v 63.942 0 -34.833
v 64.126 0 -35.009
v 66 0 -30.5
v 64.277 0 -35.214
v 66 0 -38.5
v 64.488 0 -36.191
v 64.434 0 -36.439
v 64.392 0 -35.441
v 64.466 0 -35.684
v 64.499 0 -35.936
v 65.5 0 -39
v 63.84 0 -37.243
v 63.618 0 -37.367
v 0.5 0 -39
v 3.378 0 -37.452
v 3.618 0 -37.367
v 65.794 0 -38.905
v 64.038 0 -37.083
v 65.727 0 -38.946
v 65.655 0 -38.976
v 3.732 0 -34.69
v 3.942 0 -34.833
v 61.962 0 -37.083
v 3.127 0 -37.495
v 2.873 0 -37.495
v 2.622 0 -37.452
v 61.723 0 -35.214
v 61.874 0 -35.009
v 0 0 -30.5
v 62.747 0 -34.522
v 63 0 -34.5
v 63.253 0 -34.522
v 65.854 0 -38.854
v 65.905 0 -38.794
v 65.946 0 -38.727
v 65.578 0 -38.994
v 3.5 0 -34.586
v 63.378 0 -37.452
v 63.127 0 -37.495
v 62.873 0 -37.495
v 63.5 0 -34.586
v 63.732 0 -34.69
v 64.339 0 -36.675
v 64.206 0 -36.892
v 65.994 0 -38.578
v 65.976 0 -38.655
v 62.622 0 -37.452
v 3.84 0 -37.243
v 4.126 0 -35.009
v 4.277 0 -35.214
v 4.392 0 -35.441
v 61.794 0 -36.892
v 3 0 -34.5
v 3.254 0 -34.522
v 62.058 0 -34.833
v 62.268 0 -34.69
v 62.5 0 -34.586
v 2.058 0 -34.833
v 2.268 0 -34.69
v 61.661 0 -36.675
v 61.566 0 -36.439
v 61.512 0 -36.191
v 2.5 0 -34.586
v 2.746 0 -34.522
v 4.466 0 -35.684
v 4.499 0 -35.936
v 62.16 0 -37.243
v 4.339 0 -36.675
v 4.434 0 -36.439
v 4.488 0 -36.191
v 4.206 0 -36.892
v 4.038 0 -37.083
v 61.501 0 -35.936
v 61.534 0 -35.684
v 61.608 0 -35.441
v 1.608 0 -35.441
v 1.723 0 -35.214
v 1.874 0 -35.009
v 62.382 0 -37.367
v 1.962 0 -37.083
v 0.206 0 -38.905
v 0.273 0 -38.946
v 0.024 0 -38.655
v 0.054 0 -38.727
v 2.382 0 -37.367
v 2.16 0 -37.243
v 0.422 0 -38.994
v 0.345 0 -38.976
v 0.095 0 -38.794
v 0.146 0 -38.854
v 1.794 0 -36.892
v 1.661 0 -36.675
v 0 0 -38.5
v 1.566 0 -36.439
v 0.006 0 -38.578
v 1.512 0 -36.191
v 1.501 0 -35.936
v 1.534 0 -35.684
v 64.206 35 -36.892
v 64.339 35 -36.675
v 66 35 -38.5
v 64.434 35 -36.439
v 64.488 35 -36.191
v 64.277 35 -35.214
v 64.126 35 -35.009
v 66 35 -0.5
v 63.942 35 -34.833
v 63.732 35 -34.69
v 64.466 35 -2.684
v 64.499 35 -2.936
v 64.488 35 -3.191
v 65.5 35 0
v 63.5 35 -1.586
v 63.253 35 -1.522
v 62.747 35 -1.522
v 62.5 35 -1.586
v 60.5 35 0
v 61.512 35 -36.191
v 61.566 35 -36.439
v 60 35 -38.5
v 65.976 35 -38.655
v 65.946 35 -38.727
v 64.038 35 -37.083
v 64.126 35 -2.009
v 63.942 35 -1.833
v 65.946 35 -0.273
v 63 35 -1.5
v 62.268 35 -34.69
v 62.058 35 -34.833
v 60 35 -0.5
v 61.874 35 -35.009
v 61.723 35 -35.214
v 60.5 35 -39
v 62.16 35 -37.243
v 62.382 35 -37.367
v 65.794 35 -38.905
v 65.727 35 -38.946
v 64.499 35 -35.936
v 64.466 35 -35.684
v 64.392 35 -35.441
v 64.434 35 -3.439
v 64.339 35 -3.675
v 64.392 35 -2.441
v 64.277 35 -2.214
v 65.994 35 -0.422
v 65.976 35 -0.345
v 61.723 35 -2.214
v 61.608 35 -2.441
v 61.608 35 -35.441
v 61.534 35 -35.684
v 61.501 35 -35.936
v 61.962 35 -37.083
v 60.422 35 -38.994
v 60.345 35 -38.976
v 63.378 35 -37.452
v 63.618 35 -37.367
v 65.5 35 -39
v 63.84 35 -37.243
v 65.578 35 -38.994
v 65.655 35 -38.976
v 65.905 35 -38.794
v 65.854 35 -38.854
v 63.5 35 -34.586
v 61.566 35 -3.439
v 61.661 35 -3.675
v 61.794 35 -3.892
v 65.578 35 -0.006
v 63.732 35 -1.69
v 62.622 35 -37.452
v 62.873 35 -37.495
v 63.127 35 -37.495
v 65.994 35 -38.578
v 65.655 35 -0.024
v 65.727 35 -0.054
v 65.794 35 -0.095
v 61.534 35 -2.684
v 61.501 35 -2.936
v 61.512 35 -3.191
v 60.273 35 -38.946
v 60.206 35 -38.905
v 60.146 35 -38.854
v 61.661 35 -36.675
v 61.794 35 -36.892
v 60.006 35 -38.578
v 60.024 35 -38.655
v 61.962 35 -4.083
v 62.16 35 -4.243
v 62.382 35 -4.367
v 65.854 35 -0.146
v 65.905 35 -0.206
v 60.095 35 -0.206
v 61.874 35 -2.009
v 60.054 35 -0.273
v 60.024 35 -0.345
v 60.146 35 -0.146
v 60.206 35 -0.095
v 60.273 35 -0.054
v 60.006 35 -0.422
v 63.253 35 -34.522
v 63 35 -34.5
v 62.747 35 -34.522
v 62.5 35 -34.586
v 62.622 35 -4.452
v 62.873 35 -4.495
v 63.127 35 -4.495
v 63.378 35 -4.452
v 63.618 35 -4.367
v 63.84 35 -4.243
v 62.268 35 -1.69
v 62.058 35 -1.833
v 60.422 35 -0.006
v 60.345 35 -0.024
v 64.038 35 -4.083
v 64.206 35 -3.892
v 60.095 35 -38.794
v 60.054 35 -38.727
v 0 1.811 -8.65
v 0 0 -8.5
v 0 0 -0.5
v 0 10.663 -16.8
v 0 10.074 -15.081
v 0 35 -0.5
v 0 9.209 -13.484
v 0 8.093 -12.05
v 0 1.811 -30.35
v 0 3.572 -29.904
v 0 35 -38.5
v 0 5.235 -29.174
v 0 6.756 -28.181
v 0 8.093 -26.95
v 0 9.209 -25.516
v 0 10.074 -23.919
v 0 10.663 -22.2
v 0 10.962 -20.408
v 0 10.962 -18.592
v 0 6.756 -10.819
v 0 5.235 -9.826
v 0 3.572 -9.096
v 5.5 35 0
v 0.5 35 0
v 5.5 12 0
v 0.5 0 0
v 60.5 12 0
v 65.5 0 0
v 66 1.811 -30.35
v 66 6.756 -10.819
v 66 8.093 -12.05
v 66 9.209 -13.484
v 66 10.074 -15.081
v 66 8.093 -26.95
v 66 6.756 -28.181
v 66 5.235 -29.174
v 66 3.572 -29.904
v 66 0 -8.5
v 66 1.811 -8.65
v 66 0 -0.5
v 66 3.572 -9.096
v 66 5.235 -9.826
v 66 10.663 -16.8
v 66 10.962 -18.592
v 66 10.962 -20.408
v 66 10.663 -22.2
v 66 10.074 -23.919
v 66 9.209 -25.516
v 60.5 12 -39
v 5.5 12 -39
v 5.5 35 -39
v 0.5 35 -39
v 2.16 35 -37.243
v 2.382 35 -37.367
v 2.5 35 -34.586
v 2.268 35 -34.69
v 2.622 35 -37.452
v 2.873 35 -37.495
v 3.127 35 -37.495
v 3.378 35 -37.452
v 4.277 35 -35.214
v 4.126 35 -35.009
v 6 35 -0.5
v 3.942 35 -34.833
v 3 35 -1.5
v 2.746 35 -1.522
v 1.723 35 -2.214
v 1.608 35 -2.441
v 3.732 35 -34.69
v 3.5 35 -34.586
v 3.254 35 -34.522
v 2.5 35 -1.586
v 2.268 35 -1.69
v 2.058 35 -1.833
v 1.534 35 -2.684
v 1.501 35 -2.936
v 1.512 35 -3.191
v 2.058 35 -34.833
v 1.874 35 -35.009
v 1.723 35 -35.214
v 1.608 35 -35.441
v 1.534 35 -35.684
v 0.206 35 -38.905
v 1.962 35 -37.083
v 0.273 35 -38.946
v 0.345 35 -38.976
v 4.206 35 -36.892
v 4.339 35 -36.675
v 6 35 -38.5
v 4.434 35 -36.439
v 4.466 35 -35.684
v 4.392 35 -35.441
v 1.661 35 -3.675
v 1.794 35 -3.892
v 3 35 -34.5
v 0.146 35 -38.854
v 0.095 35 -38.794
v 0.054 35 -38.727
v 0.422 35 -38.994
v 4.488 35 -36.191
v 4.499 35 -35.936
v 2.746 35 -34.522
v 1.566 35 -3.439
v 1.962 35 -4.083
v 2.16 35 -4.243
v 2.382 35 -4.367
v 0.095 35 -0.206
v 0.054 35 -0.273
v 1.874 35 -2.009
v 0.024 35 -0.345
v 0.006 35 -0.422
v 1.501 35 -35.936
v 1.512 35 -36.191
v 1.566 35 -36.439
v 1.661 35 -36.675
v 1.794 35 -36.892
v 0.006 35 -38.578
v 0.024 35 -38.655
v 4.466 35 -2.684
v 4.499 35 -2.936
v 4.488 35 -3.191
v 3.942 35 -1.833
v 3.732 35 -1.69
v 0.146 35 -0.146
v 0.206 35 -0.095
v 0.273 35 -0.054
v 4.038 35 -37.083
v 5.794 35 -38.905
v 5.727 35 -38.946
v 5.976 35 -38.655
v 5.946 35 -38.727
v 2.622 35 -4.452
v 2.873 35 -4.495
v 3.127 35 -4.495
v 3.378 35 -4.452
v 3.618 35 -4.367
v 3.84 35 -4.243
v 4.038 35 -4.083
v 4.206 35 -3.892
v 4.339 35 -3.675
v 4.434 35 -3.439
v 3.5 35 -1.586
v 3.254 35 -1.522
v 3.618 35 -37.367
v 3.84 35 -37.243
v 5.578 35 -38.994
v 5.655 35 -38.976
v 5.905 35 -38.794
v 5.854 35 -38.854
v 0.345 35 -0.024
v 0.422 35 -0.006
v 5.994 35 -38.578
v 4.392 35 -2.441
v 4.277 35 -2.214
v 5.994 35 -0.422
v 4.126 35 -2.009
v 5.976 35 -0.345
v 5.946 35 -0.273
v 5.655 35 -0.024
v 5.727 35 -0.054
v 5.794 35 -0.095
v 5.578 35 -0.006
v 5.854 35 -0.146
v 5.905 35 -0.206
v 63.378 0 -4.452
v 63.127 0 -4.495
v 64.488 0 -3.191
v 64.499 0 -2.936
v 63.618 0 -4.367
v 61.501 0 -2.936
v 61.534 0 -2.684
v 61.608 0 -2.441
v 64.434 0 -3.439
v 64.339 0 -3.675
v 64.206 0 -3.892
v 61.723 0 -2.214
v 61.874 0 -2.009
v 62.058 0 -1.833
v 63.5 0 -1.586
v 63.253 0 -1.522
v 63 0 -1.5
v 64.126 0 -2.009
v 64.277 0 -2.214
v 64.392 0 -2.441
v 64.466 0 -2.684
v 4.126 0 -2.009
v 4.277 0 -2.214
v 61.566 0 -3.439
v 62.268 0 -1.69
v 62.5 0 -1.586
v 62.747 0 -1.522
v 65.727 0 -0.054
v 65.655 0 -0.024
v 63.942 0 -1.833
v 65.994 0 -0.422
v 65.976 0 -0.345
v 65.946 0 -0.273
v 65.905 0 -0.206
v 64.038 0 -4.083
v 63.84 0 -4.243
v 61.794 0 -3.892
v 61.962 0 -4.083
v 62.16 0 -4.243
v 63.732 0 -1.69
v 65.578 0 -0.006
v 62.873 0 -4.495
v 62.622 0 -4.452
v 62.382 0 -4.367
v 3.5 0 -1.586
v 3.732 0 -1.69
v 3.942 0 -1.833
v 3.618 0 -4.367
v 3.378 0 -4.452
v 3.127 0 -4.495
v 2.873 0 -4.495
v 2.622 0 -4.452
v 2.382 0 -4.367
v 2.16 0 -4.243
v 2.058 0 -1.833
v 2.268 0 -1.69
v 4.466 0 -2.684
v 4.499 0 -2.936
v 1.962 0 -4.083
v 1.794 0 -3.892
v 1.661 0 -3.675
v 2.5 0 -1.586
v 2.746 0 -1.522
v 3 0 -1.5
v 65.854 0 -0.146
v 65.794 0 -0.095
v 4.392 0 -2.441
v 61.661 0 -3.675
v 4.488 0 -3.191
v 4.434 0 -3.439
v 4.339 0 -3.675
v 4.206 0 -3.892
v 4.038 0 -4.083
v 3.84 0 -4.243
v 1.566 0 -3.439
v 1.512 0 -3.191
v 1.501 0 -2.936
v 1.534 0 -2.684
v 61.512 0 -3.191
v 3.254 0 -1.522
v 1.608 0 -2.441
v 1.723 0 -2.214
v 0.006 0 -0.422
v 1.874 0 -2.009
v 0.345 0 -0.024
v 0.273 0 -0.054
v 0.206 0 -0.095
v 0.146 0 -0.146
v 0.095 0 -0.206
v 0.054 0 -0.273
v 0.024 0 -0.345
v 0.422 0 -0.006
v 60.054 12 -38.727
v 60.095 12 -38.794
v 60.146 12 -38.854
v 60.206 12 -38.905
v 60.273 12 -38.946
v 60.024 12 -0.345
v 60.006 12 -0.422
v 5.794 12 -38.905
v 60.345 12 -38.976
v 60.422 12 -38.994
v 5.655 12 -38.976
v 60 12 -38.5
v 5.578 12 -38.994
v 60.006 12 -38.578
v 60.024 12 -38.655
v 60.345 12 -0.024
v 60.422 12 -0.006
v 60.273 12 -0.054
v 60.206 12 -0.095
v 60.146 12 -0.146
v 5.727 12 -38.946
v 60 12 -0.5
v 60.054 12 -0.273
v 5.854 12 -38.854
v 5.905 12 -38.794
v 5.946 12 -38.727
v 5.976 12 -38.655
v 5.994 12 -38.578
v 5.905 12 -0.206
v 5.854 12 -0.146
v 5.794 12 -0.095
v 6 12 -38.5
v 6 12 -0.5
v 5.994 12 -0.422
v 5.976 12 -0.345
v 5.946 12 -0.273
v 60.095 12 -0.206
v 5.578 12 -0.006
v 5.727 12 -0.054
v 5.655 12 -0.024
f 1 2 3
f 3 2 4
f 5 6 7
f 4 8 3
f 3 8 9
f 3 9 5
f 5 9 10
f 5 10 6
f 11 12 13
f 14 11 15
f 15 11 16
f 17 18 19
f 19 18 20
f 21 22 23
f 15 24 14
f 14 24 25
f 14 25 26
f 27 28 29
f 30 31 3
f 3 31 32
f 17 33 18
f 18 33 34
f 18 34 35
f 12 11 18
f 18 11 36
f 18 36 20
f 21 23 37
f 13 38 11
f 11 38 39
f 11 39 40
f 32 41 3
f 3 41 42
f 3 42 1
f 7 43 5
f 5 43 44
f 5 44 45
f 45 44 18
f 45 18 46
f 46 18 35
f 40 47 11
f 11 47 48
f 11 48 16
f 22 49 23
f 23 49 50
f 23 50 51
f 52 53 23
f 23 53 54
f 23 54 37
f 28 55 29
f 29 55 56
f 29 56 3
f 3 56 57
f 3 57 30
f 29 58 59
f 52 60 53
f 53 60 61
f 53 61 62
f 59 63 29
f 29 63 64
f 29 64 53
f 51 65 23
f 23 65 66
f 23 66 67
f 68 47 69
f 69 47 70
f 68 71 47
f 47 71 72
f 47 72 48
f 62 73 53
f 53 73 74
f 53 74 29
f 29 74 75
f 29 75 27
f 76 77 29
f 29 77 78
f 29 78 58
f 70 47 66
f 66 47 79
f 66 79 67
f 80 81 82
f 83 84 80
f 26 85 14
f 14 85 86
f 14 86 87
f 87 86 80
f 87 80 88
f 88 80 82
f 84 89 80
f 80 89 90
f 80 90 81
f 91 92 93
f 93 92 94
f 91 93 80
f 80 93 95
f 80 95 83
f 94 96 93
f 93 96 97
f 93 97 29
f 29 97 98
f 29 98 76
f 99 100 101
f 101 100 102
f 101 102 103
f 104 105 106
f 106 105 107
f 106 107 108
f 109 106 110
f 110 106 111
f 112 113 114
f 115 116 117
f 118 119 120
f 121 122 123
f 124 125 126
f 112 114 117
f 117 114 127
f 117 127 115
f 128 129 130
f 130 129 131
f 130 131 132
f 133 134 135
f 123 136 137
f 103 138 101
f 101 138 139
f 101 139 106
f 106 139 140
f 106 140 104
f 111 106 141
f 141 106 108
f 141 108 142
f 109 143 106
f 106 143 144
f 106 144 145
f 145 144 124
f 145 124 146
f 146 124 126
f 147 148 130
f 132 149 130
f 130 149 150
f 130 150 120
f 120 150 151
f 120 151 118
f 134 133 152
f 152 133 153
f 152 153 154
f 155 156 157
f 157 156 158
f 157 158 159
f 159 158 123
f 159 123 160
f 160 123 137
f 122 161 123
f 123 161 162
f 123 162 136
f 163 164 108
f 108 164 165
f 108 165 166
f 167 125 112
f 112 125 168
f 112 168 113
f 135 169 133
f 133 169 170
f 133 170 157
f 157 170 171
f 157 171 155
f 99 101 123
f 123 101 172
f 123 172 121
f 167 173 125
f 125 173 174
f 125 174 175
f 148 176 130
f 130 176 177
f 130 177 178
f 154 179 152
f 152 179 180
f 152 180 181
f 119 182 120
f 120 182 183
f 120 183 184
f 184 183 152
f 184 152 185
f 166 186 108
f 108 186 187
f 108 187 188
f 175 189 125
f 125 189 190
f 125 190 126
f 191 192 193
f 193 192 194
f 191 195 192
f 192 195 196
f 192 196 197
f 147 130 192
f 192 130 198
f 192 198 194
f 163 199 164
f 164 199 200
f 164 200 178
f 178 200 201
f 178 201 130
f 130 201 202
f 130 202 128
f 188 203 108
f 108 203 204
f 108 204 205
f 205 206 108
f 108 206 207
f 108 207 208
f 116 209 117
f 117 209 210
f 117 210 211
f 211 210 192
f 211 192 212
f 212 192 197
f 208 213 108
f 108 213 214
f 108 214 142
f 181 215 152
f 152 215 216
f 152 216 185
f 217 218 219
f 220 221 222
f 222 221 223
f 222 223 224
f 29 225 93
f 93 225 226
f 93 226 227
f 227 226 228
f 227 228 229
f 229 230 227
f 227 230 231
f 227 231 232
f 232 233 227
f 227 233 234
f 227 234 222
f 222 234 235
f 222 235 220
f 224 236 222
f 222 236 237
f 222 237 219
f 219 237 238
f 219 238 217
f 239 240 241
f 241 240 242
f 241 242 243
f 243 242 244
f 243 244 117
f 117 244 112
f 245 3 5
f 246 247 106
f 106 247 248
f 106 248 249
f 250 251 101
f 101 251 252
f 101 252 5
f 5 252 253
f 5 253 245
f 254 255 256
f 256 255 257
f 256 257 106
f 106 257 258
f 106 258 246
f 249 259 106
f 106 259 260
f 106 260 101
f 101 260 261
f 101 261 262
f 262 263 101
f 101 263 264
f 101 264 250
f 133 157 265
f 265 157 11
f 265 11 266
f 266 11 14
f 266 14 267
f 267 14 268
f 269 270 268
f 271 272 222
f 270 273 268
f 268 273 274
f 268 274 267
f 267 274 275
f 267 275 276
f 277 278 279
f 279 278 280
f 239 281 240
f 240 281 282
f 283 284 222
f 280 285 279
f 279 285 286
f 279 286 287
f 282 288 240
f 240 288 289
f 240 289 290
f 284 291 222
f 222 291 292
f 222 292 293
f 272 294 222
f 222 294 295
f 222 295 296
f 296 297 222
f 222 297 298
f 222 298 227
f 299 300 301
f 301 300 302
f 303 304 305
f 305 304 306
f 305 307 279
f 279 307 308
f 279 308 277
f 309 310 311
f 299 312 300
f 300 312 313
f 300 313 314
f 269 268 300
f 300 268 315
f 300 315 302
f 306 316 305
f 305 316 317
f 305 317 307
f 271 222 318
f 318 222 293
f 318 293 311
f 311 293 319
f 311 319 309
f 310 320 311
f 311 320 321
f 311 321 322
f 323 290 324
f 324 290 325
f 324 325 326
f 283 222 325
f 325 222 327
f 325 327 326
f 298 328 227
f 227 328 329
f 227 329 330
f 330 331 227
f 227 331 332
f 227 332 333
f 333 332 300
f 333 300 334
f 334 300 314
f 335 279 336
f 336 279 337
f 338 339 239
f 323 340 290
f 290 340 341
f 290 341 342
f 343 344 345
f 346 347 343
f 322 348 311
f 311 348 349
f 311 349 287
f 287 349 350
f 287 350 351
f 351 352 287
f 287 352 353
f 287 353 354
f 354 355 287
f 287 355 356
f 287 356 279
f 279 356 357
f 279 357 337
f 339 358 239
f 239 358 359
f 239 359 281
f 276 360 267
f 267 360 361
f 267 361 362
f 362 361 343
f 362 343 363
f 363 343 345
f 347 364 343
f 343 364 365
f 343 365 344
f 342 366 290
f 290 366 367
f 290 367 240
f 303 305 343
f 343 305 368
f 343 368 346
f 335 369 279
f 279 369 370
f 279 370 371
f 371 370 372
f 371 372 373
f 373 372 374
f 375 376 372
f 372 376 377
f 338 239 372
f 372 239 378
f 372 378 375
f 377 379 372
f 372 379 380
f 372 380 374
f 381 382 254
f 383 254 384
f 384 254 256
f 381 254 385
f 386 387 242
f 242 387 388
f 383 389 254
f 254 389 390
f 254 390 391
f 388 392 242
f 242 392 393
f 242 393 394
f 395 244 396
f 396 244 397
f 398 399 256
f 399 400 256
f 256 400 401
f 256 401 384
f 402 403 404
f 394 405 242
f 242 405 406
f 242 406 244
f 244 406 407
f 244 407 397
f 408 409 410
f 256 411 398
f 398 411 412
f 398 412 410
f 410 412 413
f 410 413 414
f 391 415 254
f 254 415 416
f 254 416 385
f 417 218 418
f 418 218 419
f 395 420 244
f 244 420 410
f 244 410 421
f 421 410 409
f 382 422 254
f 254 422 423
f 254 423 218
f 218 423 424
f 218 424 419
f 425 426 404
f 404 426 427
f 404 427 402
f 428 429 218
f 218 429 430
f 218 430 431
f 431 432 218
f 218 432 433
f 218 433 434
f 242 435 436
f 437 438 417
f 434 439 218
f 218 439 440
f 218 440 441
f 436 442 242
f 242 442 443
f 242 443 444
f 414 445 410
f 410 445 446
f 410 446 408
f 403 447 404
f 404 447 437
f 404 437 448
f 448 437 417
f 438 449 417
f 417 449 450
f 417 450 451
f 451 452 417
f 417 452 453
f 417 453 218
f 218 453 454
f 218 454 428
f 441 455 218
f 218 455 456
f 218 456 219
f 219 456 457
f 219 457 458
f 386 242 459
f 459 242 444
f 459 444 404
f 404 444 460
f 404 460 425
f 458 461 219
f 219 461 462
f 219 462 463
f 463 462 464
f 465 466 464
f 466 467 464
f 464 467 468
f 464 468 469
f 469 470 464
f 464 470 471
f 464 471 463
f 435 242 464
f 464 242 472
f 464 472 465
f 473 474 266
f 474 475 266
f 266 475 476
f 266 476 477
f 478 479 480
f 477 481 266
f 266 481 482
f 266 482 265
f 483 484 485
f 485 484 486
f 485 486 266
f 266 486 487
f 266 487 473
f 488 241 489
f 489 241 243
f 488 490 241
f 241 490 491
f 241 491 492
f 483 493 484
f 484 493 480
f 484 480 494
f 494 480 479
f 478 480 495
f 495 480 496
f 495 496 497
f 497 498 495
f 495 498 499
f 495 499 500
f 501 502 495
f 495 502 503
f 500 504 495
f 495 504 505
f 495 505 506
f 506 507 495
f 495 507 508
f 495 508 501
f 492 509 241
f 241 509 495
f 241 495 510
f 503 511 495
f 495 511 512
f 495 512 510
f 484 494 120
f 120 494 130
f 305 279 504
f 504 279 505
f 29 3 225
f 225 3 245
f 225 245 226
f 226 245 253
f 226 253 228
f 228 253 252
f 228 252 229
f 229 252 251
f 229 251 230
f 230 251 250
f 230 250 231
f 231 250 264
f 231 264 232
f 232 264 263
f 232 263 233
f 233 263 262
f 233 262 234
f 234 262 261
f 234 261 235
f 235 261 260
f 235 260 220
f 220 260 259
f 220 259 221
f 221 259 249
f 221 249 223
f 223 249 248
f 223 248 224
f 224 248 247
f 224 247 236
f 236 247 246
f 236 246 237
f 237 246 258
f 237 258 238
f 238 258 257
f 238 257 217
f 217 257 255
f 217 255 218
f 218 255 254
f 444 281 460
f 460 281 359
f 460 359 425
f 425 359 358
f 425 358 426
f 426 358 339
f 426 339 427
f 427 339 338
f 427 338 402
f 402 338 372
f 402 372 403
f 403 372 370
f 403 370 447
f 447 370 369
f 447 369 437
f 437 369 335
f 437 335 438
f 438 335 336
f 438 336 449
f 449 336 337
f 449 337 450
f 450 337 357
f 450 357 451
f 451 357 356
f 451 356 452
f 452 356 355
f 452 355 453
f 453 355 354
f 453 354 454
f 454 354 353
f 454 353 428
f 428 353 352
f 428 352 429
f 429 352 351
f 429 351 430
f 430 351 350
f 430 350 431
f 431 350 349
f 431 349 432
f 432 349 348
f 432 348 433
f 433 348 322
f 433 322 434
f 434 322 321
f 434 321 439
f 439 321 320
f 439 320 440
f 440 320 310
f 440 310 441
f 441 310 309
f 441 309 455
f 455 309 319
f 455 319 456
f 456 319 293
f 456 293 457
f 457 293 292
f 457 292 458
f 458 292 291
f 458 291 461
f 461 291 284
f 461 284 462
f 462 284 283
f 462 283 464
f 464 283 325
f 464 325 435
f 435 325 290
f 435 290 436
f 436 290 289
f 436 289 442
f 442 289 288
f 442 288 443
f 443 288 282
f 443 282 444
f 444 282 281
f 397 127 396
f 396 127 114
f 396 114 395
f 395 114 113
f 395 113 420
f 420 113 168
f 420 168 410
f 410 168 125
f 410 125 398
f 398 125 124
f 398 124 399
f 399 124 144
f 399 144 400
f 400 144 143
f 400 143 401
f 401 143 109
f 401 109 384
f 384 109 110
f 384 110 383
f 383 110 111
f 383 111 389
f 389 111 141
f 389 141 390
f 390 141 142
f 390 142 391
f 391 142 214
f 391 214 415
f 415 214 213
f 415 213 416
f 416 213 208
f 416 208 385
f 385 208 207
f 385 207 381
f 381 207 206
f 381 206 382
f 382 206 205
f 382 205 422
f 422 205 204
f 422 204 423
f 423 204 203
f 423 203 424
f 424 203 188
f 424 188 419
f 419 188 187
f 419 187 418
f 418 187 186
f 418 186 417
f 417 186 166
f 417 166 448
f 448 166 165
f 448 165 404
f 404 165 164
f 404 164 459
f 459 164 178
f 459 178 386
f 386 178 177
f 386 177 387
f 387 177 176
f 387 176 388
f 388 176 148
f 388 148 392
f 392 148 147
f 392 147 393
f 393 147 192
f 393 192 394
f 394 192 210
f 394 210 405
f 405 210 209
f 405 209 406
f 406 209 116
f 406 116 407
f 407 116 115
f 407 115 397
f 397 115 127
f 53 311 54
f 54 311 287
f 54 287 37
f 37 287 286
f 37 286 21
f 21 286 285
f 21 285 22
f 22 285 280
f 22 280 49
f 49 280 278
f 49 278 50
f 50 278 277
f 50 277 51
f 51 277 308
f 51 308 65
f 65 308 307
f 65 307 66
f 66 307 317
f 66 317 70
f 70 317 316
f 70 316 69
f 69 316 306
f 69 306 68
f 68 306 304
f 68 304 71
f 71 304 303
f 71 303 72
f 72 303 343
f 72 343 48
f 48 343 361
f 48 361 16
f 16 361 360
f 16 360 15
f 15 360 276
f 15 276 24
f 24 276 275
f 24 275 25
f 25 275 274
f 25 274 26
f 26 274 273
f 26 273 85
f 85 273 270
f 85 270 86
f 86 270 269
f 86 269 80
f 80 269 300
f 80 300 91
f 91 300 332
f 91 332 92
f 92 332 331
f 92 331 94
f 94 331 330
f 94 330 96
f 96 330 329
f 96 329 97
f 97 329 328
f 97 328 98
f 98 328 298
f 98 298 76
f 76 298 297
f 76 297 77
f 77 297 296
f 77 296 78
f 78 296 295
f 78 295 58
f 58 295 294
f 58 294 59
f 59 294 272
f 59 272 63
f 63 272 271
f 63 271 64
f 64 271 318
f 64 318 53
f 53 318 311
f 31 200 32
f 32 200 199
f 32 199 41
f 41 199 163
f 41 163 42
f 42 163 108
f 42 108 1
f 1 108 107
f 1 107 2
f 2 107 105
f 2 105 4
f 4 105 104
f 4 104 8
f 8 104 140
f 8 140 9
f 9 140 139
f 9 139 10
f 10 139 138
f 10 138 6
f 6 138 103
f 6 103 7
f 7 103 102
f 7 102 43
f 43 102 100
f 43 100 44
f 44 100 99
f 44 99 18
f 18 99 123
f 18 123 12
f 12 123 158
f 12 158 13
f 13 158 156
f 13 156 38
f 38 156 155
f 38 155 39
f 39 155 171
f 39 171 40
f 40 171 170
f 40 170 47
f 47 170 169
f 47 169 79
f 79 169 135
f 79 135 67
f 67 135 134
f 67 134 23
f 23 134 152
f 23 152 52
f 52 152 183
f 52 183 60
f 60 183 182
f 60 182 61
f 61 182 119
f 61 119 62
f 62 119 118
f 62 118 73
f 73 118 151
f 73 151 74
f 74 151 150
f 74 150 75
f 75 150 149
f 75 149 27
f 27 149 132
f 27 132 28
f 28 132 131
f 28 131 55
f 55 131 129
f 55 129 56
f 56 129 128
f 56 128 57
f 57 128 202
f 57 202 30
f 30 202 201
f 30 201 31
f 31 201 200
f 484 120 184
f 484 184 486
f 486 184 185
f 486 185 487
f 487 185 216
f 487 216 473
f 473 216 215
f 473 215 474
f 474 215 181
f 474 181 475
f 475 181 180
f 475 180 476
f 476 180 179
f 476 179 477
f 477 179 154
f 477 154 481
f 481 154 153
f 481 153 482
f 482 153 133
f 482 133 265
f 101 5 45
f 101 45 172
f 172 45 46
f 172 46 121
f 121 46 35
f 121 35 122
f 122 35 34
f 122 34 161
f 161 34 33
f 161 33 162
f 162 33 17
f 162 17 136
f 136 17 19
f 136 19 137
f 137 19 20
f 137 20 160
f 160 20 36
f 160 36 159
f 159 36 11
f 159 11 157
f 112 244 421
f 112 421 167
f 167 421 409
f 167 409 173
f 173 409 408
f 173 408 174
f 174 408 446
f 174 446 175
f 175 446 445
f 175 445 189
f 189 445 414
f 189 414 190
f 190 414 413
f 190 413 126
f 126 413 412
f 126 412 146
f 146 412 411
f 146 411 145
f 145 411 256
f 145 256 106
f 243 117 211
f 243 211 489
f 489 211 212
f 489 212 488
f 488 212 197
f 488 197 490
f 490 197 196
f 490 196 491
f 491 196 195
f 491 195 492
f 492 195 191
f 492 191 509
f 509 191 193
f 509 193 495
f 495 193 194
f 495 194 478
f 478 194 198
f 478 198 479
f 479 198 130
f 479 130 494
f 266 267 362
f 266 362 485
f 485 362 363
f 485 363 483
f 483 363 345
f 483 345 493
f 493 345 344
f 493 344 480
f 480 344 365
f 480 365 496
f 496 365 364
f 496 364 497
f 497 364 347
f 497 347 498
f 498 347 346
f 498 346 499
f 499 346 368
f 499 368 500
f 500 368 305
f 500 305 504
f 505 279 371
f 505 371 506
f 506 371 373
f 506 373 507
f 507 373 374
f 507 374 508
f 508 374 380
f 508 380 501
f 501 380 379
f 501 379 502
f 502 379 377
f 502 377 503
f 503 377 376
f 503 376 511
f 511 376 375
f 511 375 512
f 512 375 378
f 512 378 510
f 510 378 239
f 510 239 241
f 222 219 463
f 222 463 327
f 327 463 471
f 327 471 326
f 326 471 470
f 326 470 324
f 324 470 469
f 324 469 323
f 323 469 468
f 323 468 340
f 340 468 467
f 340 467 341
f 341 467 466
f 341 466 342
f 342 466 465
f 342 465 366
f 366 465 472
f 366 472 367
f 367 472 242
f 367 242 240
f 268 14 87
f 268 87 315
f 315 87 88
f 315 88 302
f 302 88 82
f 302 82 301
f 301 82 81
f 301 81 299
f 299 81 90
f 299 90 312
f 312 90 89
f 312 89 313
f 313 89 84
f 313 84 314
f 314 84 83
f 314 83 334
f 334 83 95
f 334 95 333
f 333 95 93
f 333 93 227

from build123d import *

# Parameters (mm, degrees)
SKETCH1_W           = 66
SKETCH1_H           = 39
BOSS_EXTRUDE1_DEPTH = 35
SKETCH3_W           = 54
SKETCH3_H           = 39
CUT_EXTRUDE1_DEPTH  = 23
SKETCH4_R           = 11
CUT_EXTRUDE2_DEPTH  = 85.273364713
SKETCH5_R           = 1.5
CUT_EXTRUDE3_DEPTH  = 85.273364713
FILLET2_R           = 0.5


with BuildPart() as part:
    # Sketch1 → Boss-Extrude1 (new body)
    with BuildSketch(Plane(origin=(0, 0, 0), x_dir=(1, 0, 0), z_dir=(0, 1, 0))):
        with Locations((33, 19.5)):
            Rectangle(SKETCH1_W, SKETCH1_H)
    extrude(amount=BOSS_EXTRUDE1_DEPTH)

    # Sketch3 → Cut-Extrude1 (cut)
    with BuildSketch(Plane(origin=(0, 35, 0), x_dir=(1, 0, 0), z_dir=(0, 1, 0))):
        with Locations((33, 19.5)):
            Rectangle(SKETCH3_W, SKETCH3_H)
    extrude(amount=-CUT_EXTRUDE1_DEPTH, mode=Mode.SUBTRACT)

    # Sketch4 → Cut-Extrude2 (cut, through all)
    with BuildSketch(Plane(origin=(66, 0, 0), x_dir=(0, 0, -1), z_dir=(1, 0, 0))):
        with Locations((19.5, 0)):
            Circle(SKETCH4_R)
    extrude(amount=-CUT_EXTRUDE2_DEPTH, mode=Mode.SUBTRACT)

    # Sketch5 → Cut-Extrude3 (cut, through all)
    with BuildSketch(Plane(origin=(0, 35, 0), x_dir=(1, 0, 0), z_dir=(0, 1, 0))):
        with Locations(Location((3, 3, 0), (0, 0, 270))):
            Circle(SKETCH5_R)
        with Locations(Location((63, 3, 0), (0, 0, 270))):
            Circle(SKETCH5_R)
        with Locations(Location((63, 36, 0), (0, 0, 270))):
            Circle(SKETCH5_R)
        with Locations(Location((3, 36, 0), (0, 0, 270))):
            Circle(SKETCH5_R)
    extrude(amount=-CUT_EXTRUDE3_DEPTH, mode=Mode.SUBTRACT)

    # Fillet2
    fillet2_edges = [part.edges().sort_by_distance(p)[0] for p in [
        (60, 23.5, 0),
        (60, 23.5, -39),
        (6, 23.5, -39),
        (6, 23.5, 0),
        (0, 17.5, -39),
        (66, 17.5, -39),
        (66, 17.5, 0),
        (0, 17.5, 0),
    ]]
    fillet(fillet2_edges, radius=FILLET2_R)


solid = part.part
